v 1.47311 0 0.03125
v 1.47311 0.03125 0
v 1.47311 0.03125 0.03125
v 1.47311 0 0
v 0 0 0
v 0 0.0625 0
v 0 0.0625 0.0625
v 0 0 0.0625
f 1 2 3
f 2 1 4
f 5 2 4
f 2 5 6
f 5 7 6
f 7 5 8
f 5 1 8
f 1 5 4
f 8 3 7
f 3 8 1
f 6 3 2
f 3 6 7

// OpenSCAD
// file: ../../../constraints.scad
//####################################
// Math-Magik LPP - Design Constraints
// (c) 2021 by Roie R. Black
//====================================

// AMA Rules for event 208
//------------------------------------

max_overall_length = 20;
max_projected_wing_span = 18;
max_bearing_to_rear_hook = 10;
max_wing_chord = 5;
max_stab_span = 12;
max_stab_chord = 4;
max_prop_diameter = 12;
// file: MMlib/double_taper_spar.scad
//######################################################################
// double_taper_spar.scad - creates a spar tapered on two sides
// (c) 2021 - Roie R. Black
// docs: https://rblack.github.io/math-magik/magik/double_taper_spar.html

module double_taper_spar(l=5, y1=1, y2=0.5, z1=1, z2=0.5, debug=false) {
  // calc taper angles
  yang = atan2(z1-z2,l);
  zang = atan2(y1-y2,l);


  difference() {
    // z taper
    difference() {
      cube([l,y1,z1]);
      translate([0,-y1/2, z1])
        rotate([0,yang,0])
          if (debug) {
            #cube([l+1, 2*y1, z1]);
          } else {
            cube([l+1, 2*y1, z1]);
          }
    // y taper
    translate([0,y1, -z1/2])
      rotate([0,0,-zang])
        if (debug) {
          #cube([l+1, y1, 2*z1]);
        } else {
          cube([l+1, y1, 2*z1]);
        }
    }
  }
}

double_taper_spar();
// file: ../../wing_data.scad
//#####################################
// wing.data
// (c) 2021 by Roie R. Black
//=====================================
include <../constraints.scad>

// center section dimensions
center_span = 12;
spar_size = 1/16;
rib_chord = max_wing_chord - 2 * spar_size;
rib_camber = 4;
num_center_ribs = 5;

// tip section dimensions
tip_dihedral = 1.75;
tip_radius = 2;
a = tip_dihedral;
b = (max_projected_wing_span - center_span)/2;
tip_span = sqrt(a*a + b*b);
tip_dihedral_angle = atan2(a,b);
tip_le_span = tip_span - tip_radius;
tip_rib_chord = max_wing_chord - tip_radius - spar_size;
// main file
//#############################################
// leading_edge.scad = wing center section
// (c) 2021 by Roie R. Black
//=============================================
include <../../wing_data.scad>
use <MMlib/double_taper_spar.scad>

s1 = spar_size;
s2 = spar_size/2;


module leading_edge() {
		double_taper_spar(tip_le_span,s1,s2,s1,s2);
}

//==============================================
// display this shape
leading_edge();
